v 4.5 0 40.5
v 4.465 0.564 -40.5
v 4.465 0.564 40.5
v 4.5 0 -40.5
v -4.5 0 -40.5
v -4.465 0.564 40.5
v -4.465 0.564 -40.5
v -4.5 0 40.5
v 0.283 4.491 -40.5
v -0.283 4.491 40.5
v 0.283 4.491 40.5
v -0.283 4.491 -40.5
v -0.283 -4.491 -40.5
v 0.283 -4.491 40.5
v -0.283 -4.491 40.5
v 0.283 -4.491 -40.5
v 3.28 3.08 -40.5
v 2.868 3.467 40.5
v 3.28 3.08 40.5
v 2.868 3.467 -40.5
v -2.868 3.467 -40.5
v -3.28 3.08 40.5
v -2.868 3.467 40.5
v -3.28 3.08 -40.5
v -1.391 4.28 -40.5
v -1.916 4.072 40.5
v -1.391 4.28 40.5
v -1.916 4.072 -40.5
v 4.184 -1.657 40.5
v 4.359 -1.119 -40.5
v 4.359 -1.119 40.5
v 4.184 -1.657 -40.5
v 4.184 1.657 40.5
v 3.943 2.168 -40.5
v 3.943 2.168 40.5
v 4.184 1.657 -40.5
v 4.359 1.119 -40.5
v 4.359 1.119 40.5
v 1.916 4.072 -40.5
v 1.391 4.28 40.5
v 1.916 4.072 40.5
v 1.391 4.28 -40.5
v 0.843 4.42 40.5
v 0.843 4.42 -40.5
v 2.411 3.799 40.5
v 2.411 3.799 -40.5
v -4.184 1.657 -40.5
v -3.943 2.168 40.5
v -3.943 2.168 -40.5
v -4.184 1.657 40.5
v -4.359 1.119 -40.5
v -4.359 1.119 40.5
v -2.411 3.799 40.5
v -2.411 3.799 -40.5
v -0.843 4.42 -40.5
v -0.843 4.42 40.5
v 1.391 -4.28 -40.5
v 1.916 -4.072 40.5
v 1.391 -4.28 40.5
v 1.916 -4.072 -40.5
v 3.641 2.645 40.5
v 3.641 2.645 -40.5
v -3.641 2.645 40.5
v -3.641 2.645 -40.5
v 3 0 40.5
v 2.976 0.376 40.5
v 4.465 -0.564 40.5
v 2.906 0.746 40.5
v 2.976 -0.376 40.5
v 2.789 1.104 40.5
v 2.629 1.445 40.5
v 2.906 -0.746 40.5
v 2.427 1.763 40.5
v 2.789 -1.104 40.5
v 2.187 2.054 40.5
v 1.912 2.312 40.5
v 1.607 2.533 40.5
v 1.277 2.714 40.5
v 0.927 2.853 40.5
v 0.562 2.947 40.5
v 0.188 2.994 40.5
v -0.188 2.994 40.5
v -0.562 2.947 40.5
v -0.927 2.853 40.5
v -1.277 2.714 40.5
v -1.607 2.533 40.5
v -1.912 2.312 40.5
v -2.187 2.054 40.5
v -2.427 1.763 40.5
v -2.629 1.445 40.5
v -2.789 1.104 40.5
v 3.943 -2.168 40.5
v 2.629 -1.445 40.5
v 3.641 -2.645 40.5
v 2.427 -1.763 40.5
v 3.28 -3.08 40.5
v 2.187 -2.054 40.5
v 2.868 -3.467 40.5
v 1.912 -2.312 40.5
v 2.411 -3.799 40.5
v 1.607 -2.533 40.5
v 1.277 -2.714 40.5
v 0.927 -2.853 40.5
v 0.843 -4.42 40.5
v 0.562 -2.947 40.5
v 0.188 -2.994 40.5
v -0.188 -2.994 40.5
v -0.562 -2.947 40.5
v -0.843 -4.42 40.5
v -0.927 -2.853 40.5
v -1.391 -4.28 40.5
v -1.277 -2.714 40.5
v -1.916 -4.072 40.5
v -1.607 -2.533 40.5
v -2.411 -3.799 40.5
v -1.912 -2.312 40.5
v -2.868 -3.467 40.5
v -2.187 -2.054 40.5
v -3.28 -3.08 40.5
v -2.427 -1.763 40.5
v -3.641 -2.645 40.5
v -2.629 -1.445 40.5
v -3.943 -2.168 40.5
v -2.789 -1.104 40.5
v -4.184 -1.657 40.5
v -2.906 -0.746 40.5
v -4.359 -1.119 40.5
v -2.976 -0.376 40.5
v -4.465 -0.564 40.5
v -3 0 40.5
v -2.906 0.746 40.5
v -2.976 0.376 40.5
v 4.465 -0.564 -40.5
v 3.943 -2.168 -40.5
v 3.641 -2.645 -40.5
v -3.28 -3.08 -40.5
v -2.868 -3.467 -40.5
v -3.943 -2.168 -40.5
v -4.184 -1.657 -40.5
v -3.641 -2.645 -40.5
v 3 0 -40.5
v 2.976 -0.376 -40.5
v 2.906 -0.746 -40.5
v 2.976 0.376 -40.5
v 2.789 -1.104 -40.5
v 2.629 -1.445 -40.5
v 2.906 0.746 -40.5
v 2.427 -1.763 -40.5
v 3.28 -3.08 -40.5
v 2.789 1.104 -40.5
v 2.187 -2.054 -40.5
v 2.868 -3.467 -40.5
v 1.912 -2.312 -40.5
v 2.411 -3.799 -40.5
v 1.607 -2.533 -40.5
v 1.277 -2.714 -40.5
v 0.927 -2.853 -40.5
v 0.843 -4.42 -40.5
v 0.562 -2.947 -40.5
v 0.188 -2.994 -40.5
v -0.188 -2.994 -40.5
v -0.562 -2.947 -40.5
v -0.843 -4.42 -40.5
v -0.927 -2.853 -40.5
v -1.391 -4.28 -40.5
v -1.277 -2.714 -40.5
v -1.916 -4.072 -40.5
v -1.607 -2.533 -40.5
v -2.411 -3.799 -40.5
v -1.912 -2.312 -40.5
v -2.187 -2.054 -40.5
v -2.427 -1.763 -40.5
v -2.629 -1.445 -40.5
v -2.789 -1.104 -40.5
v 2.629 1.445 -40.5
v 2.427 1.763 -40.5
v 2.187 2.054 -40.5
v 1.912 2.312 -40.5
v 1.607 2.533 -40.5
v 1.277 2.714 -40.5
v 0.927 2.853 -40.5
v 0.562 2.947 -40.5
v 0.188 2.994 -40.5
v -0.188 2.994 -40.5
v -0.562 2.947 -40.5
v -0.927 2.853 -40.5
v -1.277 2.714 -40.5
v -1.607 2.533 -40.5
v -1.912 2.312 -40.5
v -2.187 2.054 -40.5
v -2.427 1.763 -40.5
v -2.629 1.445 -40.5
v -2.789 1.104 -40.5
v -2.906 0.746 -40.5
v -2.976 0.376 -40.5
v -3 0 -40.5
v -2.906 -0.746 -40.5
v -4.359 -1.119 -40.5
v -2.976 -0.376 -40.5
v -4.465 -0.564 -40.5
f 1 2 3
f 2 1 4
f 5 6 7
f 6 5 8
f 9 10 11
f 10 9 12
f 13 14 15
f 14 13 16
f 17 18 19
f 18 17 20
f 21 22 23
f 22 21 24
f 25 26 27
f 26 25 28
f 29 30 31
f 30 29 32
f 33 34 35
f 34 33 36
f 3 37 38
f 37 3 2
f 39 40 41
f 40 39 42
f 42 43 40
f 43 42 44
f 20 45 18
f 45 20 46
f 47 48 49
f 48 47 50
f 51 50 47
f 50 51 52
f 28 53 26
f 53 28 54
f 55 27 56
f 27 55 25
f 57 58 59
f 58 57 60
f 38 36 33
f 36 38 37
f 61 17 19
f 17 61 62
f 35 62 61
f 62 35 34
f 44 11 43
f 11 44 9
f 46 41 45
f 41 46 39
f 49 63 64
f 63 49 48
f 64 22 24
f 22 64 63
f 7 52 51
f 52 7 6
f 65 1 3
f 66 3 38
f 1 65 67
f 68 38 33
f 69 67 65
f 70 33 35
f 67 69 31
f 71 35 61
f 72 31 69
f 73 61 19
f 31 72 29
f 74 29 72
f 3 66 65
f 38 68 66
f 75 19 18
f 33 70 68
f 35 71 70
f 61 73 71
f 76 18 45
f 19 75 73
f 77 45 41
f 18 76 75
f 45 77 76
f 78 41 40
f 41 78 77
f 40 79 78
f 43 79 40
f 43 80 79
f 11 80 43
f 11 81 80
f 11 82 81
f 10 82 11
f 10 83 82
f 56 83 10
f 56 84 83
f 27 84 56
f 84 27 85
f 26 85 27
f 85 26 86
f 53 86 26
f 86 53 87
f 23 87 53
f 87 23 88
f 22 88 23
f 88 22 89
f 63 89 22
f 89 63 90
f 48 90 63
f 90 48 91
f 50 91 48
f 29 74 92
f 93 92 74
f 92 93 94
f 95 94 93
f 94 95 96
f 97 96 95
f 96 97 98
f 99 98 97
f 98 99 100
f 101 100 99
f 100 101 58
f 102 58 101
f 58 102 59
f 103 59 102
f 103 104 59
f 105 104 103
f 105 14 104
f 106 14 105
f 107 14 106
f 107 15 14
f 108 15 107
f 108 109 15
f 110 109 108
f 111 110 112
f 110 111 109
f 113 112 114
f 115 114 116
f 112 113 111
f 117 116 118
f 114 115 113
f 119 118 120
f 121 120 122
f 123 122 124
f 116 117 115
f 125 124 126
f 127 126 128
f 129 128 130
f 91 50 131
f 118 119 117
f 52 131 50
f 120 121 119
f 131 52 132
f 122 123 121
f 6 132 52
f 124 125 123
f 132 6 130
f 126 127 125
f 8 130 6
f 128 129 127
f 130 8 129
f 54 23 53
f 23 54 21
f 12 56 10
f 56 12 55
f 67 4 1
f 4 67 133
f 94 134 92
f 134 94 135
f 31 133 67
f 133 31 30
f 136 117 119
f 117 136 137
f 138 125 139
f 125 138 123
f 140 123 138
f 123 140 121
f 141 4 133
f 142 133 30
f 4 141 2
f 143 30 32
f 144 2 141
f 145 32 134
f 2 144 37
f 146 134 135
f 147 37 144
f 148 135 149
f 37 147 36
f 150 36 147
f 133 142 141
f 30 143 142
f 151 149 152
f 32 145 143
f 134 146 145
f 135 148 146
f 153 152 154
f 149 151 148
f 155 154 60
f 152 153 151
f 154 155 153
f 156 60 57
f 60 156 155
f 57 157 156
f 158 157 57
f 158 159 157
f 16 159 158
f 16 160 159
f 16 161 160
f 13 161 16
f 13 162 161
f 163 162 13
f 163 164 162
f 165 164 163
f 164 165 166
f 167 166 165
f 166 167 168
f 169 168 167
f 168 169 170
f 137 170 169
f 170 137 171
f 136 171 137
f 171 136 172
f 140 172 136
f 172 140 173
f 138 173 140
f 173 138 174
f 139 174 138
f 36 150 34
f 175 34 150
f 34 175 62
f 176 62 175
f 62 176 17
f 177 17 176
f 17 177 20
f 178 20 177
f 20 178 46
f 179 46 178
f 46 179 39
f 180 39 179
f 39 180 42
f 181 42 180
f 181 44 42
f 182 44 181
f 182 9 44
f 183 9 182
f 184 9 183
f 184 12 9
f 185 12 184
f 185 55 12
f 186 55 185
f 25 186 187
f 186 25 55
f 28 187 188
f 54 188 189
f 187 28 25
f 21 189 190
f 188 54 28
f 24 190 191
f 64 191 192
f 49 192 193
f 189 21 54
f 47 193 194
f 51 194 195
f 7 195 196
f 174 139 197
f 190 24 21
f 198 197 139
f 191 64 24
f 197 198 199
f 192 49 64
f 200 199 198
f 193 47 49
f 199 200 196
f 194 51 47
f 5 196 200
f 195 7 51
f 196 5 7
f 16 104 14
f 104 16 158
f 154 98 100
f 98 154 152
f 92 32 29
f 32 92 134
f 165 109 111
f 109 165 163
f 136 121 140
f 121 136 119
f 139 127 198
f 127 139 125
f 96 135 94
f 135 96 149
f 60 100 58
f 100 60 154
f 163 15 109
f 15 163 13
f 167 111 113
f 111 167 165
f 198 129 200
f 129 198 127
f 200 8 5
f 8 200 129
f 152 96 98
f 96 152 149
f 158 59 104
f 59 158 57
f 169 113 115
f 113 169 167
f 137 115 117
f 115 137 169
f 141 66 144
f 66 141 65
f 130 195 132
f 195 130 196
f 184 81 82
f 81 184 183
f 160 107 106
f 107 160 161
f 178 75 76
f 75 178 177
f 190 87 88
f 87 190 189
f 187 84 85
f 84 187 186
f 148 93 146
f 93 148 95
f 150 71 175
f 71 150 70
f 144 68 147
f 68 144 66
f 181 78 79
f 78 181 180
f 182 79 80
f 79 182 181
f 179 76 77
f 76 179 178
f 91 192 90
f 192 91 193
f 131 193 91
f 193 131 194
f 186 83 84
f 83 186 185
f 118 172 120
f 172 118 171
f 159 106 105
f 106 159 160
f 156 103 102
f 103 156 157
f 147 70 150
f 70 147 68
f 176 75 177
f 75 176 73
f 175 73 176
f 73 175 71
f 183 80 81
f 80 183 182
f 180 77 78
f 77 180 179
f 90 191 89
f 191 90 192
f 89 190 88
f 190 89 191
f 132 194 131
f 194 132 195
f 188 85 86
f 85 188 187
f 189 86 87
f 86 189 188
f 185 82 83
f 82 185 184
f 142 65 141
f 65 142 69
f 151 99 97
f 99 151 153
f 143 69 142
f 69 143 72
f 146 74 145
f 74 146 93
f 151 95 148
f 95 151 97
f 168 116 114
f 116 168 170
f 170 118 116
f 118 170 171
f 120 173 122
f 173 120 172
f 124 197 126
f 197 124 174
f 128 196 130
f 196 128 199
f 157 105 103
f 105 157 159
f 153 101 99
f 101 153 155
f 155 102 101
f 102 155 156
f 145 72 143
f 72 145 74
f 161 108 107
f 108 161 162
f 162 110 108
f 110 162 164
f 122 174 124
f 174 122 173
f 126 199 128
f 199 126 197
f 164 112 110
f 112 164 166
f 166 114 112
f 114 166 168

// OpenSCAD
$fn = 50;


difference() {
	union() {
		translate(v = [0, 0, -40.5000000000]) {
			cylinder(h = 81, r = 4.5000000000);
		}
	}
	union() {
		translate(v = [0, 0, -100.0000000000]) {
			cylinder(h = 200, r = 3);
		}
	}
}
